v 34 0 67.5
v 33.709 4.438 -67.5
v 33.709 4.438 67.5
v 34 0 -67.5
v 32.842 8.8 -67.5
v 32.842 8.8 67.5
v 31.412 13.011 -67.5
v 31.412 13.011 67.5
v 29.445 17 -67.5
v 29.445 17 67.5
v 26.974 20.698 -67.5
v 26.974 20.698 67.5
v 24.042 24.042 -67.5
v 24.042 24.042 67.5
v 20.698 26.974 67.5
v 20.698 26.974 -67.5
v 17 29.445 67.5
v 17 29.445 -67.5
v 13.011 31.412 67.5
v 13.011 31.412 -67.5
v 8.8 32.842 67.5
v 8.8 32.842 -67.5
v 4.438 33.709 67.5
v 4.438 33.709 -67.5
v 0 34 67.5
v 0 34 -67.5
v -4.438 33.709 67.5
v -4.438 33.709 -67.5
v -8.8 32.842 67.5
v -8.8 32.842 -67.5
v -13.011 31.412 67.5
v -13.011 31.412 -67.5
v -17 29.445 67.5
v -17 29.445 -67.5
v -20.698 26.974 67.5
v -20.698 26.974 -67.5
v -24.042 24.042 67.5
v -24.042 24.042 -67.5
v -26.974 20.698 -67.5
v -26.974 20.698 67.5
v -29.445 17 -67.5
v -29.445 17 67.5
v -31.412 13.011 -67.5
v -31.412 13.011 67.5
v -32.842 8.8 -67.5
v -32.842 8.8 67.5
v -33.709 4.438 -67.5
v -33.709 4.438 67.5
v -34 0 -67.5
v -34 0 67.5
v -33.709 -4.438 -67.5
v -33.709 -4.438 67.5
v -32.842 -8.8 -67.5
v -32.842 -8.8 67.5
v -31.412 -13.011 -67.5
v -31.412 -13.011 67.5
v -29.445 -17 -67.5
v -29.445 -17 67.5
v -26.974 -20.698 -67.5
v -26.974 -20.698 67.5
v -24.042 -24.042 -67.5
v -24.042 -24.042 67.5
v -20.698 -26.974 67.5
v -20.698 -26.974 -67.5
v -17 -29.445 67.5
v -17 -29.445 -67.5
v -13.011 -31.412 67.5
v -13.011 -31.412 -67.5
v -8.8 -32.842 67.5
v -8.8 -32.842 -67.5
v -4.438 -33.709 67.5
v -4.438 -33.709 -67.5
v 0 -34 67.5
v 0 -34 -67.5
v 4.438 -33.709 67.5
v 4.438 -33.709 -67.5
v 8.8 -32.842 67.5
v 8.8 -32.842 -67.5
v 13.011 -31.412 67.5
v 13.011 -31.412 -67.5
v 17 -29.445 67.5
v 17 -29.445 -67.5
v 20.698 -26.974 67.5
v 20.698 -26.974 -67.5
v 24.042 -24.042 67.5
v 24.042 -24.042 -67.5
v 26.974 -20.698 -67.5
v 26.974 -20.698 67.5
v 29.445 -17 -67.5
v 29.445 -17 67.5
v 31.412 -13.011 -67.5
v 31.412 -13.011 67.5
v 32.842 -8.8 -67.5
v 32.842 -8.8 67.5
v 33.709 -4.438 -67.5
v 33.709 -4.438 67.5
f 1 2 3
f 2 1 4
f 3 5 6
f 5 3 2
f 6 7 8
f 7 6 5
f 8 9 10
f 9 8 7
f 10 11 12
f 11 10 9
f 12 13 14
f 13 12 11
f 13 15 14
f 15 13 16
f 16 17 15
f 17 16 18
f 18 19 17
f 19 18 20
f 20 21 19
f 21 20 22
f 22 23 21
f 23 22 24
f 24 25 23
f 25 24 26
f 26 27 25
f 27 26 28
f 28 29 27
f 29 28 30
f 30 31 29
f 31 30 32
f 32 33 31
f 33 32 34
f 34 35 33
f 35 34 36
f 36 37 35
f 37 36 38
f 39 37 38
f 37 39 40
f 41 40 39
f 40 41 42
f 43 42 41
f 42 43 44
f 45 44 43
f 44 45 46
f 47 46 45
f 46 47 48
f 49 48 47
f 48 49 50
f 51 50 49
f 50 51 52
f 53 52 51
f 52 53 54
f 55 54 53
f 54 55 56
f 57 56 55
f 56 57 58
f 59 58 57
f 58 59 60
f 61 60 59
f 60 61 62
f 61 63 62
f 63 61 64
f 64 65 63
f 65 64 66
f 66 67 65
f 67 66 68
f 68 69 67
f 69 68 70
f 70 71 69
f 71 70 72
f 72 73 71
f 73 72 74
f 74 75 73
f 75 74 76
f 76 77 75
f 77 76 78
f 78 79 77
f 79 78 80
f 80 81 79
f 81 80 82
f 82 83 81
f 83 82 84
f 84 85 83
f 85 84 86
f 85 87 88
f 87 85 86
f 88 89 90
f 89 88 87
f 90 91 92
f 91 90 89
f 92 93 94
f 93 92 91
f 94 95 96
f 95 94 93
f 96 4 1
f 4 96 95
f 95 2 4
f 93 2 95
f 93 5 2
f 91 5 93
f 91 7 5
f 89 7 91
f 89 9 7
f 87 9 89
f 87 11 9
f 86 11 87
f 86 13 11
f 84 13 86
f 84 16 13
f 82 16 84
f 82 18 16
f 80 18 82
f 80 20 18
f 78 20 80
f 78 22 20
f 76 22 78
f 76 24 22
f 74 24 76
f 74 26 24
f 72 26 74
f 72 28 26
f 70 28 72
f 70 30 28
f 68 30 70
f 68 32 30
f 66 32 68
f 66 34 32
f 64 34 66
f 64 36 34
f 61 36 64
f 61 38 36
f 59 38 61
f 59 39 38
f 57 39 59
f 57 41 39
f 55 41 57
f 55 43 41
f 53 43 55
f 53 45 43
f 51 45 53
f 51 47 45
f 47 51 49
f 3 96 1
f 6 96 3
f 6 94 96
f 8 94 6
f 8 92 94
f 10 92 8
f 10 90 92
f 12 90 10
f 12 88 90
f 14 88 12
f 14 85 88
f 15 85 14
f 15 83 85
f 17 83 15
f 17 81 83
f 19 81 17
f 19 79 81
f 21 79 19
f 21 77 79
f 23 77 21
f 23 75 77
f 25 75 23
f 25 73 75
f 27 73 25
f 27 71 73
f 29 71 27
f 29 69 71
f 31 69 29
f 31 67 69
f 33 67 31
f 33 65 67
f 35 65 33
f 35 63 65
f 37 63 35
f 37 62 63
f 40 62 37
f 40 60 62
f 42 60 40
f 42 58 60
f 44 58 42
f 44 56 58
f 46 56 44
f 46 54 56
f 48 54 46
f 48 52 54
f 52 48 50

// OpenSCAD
// ========================================
// a cylinder with radius 34 mm and height 135 mm
// NeuroCAD canonical IR; dimensions are millimetres
// ========================================
$fn = 48;

cylinder(r=34, h=135, center=true);
